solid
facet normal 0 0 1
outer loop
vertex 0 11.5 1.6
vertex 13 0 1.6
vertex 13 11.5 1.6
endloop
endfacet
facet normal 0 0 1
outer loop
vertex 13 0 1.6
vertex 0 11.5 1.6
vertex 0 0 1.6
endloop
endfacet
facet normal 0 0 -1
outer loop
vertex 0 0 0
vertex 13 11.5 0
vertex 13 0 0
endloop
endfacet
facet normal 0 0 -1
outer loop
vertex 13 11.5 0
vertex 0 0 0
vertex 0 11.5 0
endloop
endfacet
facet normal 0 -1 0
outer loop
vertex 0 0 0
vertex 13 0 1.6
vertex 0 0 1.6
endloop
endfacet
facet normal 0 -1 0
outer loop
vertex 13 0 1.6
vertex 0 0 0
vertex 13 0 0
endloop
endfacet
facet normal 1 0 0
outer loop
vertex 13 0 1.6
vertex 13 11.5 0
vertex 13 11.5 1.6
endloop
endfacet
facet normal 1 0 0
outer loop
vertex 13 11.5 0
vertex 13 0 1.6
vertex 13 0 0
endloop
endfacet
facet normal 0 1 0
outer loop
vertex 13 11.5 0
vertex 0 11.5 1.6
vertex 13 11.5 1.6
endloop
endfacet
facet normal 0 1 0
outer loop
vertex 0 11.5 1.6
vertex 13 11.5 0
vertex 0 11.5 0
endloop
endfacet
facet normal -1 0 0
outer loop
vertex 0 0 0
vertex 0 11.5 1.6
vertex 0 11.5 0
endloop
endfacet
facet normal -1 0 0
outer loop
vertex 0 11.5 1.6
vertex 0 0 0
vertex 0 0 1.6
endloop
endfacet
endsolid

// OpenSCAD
$fn = 50;
capH = 1.6;
capW = 11.5;
capL = 13;

cap(0, 0, 0);    
    
module cap(xpos, ypos, zpos) {
    translate([xpos, ypos, zpos]) {
        cube([capL, capW, capH]);
    }
}
